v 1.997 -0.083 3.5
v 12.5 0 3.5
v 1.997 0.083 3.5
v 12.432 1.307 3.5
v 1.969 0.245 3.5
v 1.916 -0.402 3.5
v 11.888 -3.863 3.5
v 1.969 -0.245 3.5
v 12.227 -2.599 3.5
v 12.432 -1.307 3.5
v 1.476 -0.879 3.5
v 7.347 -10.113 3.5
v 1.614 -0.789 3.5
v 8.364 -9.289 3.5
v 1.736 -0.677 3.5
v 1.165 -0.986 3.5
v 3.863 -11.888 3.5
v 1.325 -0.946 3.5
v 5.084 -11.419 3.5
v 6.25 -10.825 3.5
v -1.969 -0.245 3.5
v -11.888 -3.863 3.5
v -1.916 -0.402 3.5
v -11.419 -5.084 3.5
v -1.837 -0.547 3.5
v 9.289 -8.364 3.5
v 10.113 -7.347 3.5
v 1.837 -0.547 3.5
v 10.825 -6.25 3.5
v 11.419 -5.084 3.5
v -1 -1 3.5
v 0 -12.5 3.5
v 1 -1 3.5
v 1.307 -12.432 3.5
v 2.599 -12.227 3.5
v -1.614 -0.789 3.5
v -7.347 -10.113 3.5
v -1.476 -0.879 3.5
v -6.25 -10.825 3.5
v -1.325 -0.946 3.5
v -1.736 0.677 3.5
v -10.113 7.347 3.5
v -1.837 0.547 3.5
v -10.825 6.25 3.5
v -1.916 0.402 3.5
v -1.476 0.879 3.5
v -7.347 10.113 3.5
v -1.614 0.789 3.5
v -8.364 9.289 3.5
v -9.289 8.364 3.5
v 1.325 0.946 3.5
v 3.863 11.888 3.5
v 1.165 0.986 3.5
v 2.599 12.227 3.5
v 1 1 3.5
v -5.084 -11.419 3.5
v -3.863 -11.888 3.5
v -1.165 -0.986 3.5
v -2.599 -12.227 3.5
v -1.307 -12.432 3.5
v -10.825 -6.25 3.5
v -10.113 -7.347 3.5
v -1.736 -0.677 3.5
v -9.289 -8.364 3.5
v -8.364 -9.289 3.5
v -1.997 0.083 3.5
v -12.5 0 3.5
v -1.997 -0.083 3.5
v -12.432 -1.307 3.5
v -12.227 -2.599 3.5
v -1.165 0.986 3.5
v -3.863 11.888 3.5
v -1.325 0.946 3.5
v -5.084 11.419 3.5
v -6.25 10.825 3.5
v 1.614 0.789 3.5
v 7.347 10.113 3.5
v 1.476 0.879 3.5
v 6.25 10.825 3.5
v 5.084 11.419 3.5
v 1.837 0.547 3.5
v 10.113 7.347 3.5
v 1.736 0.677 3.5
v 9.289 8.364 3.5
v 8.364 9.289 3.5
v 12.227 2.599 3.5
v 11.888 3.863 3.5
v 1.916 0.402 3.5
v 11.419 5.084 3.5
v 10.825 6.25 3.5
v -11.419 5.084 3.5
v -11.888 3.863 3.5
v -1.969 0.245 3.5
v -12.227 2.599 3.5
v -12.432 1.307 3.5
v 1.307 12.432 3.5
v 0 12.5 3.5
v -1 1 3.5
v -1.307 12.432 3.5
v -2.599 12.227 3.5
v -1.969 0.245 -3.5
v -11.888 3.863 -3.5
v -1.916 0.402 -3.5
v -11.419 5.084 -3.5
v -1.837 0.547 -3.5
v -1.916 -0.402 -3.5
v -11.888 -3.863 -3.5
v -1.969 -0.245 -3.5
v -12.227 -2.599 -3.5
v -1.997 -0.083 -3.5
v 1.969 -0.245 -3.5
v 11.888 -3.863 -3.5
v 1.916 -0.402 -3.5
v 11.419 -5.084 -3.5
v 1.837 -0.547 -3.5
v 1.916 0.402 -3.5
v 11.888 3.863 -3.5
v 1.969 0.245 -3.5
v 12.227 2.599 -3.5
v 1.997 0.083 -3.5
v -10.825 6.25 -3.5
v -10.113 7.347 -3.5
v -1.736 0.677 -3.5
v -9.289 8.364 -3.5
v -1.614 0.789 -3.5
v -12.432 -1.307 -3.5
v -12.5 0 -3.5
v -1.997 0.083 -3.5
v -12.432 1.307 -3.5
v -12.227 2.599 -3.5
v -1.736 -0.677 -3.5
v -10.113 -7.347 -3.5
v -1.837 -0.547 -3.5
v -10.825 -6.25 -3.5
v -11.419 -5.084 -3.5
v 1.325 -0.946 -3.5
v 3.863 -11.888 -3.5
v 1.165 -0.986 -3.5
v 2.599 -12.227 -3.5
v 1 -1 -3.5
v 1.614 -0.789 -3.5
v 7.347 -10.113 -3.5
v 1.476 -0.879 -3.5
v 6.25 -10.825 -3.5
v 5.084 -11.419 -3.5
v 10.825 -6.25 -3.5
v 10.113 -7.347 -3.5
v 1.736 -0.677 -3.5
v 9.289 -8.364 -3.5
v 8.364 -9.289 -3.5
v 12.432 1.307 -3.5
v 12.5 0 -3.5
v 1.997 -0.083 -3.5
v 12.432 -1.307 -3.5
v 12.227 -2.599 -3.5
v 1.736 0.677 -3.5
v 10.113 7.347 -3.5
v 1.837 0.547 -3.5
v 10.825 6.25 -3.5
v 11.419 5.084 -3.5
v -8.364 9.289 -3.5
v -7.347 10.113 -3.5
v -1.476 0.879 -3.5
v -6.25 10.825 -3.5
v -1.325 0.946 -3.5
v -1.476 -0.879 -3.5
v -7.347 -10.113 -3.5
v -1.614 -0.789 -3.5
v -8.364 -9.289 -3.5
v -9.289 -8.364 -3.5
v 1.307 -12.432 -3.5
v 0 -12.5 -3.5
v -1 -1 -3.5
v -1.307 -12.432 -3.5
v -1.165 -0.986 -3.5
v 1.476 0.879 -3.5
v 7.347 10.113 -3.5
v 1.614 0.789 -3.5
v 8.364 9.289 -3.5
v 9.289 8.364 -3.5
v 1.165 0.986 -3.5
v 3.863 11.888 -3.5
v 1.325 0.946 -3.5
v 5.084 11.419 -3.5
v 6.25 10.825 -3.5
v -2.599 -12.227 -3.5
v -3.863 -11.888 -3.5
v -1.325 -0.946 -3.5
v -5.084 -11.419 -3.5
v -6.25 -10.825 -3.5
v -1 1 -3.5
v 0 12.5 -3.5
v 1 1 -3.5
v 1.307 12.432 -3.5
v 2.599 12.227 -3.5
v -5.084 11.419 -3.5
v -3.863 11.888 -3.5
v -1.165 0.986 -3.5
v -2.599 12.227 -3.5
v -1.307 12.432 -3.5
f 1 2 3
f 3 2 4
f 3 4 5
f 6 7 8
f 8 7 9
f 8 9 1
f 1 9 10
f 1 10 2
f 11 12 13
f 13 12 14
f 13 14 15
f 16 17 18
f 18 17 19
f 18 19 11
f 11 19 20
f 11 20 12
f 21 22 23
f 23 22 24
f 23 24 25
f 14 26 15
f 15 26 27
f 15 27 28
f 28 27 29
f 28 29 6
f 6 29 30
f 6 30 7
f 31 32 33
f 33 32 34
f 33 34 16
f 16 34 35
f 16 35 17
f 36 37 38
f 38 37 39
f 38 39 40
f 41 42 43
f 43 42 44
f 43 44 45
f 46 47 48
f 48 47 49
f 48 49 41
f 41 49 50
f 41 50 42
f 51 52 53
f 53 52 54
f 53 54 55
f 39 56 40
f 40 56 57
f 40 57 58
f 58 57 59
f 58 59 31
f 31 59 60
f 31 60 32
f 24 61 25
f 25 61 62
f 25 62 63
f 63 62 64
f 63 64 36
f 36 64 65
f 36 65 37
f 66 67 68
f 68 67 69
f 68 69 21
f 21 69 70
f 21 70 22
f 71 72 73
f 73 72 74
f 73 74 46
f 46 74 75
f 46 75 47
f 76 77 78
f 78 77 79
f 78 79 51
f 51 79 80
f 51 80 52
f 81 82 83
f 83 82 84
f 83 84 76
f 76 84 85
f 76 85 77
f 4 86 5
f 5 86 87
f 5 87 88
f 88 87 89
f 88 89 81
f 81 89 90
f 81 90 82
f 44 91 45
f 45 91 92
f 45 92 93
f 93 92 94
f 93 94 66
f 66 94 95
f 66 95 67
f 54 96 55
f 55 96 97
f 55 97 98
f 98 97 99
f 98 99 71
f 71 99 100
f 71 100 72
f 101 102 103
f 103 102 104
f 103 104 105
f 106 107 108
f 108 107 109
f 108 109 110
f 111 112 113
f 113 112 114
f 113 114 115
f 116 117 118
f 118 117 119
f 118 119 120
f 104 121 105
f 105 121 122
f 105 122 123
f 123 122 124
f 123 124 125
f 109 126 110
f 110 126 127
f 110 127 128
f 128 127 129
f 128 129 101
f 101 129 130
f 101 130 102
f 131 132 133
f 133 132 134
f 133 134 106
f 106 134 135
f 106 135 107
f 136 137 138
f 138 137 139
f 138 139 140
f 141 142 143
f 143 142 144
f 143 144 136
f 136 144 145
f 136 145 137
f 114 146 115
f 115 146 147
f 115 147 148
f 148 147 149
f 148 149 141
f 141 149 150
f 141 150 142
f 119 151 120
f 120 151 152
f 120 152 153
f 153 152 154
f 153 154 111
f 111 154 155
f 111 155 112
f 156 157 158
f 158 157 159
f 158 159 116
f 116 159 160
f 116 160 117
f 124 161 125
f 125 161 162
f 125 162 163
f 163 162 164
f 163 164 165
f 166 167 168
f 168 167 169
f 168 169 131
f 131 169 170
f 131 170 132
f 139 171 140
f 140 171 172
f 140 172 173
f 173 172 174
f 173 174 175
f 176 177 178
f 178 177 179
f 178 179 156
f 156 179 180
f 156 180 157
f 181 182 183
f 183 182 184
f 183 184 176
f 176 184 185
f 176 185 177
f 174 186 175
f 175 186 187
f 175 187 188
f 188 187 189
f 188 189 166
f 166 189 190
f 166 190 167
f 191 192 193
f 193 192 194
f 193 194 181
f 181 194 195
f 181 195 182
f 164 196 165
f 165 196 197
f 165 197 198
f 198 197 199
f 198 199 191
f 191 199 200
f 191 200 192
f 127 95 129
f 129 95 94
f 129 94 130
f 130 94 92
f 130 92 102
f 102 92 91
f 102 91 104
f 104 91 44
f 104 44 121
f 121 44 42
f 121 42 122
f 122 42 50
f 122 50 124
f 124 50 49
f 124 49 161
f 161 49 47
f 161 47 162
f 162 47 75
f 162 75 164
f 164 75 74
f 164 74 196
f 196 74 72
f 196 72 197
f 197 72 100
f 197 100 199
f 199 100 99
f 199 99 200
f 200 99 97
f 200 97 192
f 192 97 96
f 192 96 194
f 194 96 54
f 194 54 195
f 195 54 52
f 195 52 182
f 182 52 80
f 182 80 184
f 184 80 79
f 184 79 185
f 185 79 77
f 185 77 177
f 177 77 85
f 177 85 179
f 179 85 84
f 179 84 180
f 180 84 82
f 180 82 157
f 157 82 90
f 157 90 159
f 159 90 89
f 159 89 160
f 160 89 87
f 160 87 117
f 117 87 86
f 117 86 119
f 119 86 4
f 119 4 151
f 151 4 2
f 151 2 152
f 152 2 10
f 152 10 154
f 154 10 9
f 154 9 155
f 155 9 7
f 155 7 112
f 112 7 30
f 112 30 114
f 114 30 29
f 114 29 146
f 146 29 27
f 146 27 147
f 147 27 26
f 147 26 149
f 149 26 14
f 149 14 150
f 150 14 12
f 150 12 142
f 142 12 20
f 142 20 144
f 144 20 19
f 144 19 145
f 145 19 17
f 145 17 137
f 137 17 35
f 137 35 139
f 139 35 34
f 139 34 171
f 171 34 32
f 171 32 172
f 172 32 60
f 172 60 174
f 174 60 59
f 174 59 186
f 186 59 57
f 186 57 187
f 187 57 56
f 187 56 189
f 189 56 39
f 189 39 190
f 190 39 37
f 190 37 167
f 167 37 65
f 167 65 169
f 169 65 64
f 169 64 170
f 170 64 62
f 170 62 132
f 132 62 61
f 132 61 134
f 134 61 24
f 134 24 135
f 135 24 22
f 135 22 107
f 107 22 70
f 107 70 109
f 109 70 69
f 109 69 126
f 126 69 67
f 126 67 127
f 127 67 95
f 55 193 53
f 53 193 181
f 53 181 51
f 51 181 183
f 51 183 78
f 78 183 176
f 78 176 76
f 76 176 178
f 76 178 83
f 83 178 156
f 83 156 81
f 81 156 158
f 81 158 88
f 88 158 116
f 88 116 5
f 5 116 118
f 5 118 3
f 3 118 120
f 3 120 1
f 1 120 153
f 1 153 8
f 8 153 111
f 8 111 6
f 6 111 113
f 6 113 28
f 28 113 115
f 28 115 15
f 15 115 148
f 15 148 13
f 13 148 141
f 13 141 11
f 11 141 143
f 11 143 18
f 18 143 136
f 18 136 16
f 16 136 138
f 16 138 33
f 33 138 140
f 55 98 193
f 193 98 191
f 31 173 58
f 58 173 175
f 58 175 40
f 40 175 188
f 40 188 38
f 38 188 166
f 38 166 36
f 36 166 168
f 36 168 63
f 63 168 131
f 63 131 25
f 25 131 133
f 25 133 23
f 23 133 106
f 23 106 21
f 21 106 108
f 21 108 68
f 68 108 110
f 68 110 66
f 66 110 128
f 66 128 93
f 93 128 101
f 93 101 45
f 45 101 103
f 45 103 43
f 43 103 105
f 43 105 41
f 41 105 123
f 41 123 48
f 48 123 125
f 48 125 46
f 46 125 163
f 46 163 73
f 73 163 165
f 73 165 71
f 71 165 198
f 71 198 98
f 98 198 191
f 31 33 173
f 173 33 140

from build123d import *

# Parameters (mm, degrees)
SKETCH1_R           = 12.5
BOSS_EXTRUDE1_DEPTH = 3.5


with BuildPart() as part:
    # Sketch1 → Boss-Extrude1 (new body, symmetric)
    with BuildSketch(Plane.XY):
        Circle(SKETCH1_R)
        with BuildLine():
            Line((1, -1), (-1, -1))
            ThreePointArc((-1, -1), (-2, 0), (-1, 1))
            Line((-1, 1), (1, 1))
            ThreePointArc((1, 1), (2, 0), (1, -1))
        make_face(mode=Mode.SUBTRACT)
    extrude(amount=BOSS_EXTRUDE1_DEPTH, both=True)


solid = part.part
